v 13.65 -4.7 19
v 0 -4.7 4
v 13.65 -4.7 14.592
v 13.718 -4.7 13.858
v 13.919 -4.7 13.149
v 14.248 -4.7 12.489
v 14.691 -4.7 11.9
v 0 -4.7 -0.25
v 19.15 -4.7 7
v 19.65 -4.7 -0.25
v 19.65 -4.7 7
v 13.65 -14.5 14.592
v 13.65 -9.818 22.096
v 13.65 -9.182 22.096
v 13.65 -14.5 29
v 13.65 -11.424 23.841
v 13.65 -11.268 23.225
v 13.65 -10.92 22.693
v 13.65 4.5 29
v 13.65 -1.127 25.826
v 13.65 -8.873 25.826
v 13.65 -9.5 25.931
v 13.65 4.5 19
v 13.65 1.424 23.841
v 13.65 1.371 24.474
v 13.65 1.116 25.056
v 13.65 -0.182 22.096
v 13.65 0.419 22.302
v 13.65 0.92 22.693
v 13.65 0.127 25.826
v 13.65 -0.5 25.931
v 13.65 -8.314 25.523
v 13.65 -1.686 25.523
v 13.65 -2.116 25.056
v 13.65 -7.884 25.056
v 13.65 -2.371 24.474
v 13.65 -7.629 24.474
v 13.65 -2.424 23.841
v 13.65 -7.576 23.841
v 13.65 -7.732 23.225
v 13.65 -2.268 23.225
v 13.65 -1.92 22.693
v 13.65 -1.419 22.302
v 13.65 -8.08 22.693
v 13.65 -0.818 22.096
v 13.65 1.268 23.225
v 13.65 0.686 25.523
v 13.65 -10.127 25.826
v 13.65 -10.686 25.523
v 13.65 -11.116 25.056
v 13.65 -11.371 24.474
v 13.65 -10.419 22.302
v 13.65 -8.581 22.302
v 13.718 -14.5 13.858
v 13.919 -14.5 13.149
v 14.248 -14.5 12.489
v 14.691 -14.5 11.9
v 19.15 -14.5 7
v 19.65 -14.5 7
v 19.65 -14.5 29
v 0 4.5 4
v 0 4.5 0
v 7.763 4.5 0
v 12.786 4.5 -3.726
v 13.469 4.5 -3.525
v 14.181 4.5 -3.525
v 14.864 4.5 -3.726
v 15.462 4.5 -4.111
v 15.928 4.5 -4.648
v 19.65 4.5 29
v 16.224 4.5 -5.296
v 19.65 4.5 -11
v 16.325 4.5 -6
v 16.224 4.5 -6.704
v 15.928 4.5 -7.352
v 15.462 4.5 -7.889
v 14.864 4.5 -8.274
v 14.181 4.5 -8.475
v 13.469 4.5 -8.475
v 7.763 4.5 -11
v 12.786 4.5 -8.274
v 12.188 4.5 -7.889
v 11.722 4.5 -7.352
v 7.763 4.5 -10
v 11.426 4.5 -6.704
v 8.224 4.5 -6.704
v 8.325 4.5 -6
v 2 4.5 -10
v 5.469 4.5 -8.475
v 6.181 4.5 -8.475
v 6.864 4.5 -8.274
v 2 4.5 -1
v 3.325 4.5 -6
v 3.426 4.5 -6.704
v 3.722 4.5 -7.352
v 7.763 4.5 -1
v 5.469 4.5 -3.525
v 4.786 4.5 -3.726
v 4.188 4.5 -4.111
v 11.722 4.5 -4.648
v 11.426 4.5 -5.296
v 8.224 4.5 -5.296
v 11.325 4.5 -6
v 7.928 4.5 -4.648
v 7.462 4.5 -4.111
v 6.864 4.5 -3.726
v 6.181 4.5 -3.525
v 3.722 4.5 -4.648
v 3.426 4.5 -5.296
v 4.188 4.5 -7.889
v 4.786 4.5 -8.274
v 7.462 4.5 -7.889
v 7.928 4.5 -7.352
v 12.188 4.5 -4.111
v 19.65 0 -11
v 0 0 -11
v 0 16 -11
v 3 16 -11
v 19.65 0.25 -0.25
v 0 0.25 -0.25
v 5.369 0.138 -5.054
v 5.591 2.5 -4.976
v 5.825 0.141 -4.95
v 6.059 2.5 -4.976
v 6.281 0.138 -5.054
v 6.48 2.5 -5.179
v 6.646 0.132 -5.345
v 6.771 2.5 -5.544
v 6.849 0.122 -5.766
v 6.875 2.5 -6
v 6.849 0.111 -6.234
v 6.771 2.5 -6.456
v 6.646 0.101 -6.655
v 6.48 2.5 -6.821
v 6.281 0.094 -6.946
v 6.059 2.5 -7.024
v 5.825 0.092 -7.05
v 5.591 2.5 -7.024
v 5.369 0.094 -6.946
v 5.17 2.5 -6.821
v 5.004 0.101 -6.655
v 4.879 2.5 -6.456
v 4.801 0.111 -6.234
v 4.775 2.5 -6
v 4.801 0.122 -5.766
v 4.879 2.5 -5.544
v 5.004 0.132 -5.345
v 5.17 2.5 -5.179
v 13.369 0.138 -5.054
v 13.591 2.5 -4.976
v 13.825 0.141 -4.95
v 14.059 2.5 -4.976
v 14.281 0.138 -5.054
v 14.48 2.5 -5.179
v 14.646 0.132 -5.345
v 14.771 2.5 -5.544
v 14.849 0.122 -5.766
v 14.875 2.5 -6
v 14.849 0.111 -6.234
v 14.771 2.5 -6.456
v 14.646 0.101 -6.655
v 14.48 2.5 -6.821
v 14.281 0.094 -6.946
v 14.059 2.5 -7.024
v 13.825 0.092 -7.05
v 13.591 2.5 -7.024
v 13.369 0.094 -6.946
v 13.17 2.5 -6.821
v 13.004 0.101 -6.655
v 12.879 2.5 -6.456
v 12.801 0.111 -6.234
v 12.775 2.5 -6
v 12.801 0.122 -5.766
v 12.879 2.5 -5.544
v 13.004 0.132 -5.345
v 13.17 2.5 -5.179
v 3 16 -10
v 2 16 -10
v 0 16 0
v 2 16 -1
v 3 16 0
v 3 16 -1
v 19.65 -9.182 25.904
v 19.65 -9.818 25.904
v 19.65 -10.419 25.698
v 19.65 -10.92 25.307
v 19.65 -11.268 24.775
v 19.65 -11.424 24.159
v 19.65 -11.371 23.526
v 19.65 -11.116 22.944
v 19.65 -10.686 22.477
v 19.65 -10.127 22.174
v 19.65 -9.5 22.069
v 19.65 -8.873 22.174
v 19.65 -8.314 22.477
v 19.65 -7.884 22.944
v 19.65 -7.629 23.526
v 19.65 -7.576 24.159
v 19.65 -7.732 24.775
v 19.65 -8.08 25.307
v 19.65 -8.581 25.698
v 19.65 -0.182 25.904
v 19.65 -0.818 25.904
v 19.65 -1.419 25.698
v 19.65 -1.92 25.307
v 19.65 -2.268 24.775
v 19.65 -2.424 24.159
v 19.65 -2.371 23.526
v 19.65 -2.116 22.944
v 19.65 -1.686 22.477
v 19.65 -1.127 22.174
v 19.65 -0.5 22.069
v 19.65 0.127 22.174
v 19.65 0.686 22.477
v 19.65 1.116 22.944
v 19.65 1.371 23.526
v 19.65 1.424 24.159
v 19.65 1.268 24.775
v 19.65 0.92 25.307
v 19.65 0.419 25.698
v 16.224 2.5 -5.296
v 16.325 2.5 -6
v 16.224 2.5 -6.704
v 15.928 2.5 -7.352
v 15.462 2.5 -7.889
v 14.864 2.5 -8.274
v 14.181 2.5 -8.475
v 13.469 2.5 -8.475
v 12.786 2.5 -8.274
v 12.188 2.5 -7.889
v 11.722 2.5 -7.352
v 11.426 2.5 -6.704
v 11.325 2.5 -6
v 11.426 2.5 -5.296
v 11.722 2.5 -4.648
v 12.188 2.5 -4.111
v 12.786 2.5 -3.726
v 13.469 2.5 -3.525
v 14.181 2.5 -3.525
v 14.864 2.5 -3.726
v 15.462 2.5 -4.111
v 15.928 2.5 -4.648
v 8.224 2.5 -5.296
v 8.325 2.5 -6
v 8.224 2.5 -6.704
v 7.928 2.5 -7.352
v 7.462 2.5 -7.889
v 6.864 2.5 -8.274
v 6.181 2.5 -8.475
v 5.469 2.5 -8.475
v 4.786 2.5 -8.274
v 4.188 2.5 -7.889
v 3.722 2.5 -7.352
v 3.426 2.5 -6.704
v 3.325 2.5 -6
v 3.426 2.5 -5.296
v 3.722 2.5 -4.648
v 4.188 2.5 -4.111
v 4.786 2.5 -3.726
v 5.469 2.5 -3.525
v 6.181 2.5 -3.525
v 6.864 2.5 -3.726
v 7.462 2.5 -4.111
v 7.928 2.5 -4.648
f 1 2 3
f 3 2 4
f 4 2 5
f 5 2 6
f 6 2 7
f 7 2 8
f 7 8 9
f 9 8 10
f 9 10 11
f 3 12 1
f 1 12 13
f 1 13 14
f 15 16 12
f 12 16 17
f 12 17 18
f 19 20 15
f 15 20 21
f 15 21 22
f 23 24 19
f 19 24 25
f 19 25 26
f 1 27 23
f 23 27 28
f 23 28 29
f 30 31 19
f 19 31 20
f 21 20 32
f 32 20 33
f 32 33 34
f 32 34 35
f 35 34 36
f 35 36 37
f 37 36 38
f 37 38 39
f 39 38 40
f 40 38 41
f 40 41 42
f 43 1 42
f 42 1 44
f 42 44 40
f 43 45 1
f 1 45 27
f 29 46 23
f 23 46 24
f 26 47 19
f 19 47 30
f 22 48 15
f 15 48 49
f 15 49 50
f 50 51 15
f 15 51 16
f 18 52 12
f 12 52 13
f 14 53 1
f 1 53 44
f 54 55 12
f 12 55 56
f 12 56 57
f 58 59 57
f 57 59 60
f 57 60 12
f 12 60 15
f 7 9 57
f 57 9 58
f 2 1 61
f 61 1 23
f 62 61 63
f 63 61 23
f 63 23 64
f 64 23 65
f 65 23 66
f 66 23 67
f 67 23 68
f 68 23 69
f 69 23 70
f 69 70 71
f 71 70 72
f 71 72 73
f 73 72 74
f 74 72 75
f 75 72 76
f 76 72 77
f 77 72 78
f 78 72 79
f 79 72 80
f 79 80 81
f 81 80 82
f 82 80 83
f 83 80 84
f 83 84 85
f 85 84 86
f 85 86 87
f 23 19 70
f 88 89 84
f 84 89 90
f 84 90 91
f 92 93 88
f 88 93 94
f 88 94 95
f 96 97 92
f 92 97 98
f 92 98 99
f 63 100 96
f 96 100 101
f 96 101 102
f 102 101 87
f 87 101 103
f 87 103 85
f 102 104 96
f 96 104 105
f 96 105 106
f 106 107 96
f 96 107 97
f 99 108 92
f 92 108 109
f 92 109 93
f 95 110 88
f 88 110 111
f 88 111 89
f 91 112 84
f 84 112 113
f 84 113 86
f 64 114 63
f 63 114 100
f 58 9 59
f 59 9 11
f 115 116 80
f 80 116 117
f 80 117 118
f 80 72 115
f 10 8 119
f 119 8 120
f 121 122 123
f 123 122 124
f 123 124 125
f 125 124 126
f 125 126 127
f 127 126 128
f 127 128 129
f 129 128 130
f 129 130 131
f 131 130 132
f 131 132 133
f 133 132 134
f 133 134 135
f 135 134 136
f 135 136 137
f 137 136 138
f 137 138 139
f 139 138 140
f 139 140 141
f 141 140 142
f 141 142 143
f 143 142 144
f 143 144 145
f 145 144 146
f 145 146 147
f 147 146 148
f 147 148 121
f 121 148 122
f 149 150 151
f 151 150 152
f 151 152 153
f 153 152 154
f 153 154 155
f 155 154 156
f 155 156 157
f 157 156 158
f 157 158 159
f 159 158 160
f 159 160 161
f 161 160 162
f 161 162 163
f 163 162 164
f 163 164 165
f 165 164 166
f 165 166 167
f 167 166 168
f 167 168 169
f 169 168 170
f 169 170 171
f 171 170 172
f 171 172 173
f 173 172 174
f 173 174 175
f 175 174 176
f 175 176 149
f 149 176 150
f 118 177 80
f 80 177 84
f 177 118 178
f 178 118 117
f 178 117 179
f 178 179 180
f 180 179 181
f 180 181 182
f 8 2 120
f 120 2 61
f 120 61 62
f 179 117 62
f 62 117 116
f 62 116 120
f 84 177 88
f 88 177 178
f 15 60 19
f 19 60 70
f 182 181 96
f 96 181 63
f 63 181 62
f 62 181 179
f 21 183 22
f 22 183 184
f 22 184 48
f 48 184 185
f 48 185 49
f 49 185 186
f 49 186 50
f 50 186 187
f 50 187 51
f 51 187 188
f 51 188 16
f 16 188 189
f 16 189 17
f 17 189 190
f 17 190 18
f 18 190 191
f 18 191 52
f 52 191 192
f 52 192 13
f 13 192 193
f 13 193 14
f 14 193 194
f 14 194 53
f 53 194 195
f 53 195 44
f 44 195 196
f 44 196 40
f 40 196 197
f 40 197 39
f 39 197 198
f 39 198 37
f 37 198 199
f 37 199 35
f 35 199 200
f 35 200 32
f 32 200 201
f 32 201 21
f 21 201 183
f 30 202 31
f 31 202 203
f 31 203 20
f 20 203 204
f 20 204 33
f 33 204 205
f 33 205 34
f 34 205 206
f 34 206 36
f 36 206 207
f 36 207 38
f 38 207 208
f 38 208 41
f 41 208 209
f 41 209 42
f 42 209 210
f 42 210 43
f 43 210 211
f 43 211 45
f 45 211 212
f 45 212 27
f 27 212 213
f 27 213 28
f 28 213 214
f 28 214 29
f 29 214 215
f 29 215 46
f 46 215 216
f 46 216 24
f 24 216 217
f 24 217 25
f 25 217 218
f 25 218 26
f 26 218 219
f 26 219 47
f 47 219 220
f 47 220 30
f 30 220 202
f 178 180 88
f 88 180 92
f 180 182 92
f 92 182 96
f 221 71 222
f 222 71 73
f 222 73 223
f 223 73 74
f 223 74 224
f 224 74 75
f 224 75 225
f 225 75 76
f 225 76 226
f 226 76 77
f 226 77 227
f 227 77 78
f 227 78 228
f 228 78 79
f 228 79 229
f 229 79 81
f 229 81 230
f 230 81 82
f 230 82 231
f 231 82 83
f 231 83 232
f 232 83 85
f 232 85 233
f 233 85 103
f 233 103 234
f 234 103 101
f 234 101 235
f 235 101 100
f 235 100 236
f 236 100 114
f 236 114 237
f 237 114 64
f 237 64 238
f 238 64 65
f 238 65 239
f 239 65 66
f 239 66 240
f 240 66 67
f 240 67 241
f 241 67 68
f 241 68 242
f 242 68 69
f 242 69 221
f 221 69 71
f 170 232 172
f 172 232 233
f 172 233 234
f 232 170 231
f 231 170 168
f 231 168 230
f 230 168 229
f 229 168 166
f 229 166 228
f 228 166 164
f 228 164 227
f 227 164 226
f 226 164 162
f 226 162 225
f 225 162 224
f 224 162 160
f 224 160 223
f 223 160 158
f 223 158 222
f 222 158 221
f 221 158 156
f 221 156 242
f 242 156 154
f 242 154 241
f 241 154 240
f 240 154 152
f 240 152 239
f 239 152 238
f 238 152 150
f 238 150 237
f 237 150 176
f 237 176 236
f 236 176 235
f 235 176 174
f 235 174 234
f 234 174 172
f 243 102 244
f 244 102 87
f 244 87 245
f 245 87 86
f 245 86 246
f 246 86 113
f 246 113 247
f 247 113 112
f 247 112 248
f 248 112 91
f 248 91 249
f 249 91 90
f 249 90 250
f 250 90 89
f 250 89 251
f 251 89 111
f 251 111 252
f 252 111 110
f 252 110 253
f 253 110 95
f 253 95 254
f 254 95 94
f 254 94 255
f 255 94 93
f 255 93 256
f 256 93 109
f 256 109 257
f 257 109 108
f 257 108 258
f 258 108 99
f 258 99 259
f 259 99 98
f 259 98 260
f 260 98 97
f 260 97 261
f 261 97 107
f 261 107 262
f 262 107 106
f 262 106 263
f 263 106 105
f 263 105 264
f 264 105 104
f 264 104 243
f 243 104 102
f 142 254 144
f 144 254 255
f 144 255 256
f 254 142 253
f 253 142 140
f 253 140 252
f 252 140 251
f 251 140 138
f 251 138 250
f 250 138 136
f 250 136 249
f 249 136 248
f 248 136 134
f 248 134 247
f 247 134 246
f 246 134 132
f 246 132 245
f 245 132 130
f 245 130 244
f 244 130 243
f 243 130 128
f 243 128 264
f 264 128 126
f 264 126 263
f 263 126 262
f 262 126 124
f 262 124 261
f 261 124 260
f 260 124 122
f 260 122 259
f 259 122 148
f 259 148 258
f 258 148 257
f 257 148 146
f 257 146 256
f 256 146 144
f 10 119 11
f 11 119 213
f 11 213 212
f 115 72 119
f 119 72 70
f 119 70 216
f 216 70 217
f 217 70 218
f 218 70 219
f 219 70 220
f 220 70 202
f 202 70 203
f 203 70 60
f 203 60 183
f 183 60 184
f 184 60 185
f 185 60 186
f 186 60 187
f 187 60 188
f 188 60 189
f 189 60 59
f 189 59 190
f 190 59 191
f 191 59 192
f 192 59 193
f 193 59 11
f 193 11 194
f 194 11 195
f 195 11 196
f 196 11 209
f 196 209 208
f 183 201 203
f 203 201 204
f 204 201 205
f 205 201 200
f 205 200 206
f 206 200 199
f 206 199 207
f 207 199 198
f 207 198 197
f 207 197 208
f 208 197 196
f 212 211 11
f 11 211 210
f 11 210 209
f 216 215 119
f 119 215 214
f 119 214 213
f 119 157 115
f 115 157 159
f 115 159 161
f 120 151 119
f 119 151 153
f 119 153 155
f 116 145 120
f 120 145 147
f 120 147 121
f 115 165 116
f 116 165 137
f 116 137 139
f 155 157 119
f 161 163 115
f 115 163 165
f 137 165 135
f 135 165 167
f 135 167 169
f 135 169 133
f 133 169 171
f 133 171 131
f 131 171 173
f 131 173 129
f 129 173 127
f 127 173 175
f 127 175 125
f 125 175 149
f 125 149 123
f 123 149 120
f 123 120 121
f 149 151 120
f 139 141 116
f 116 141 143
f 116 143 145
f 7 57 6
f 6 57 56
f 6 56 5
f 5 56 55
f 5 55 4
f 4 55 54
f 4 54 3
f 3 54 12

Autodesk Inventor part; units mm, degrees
ref_plane "YZ Plane" through (0, 0, 0) normal (1, 0, 0) x (0, 1, 0)
ref_plane "XZ Plane" through (0, 0, 0) normal (0, 1, 0) x (-1, 0, 0)
ref_plane "XY Plane" through (0, 0, 0) normal (0, 0, 1) x (1, 0, 0)
sketch "Sketch1" plane through (0, 0, 0) normal (0, 1, 0) x (-1, 0, 0)
  line L0 (0, 0) -> (-19.65, 0)
  line L1 (-19.65, 0) -> (-19.65, -12)
  line L2 (-19.65, -12) -> (0, -12)
  line L3 (0, -12) -> (0, 0)
  line L4 (0, 0) -> (0, -6)
  line L5 (0, -6) -> (-5.825, -6)
  line L6 (-5.825, -6) -> (-13.825, -6)
  circle A0 centre (-5.825, -6) radius 1.05
  circle A1 centre (-13.825, -6) radius 1.05
  dimension "d0" = 19.65
  dimension "d1" = 12
  dimension "d2" = 6
  dimension "d3" = 5.825
  dimension "d4" = 8
  dimension "d5" = 2.1
  dimension "d6" = 2.1
extrude "Extrusion1" add sketch "Sketch1" along normal blind 4.5
sketch "Sketch2" plane through (0, 4.5, 0) normal (0, 1, 0) x (1, 0, 0)
  line L0 (0, 0) -> (19.65, 0) projected
  line L1 (0, 0) -> (0, 6)
  line L2 (0, 12) -> (0, 0) projected
  line L3 (0, 6) -> (5.825, 6)
  line L4 (5.825, 6) -> (13.825, 6)
  circle A0 centre (5.825, 6) radius 2.5
  circle A1 centre (13.825, 6) radius 2.5
  dimension "d9" = 5.825
  dimension "d10" = 8
  dimension "d11" = 5
  dimension "d12" = 5
extrude "Extrusion2" cut sketch "Sketch2" against normal blind 2
sketch "Sketch3" plane through (0, 4.5, 0) normal (0, 1, 0) x (1, 0, 0)
  line L0 (19.65, 12) -> (0, 12) projected
  line L1 (0, 0) -> (3, 0)
  line L2 (3, 0) -> (3, 12)
  line L3 (3, 12) -> (0, 12)
  line L4 (0, 12) -> (0, 0)
  dimension "d15" = 3
extrude "Extrusion3" add sketch "Sketch3" along normal blind 11.5
sketch "Sketch4" plane through (0, 16, 0) normal (0, 1, 0) x (1, 0, 0)
  line L0 (0, 0) -> (3, 0) projected
  line L1 (0, 0) -> (3, 0)
  line L2 (3, 0) -> (3, 1)
  line L3 (3, 0) -> (3, 12) projected
  line L4 (3, 1) -> (2, 1)
  line L5 (2, 1) -> (2, 11)
  line L6 (2, 11) -> (3, 11)
  line L7 (3, 1) -> (3, 11)
  dimension "d18" = 1
  dimension "d19" = 1
  dimension "d20" = 10
extrude "Extrusion4" cut sketch "Sketch4" against normal blind 11.5
sketch "Sketch6" plane through (0, 0, 0) normal (0, 0, 1) x (1, 0, 0)
  line L0 (0, 0) -> (19.65, 0) projected
  line L1 (0, 0) -> (5, 0)
  line L2 (5, 0) -> (5, 4.5)
  line L3 (3.325, 4.5) -> (8.325, 4.5) projected
  line L4 (19.65, 0) -> (19.65, 4.5) projected
  line L5 (19.65, 4.5) -> (19.65, 0)
  line L6 (19.65, 0) -> (5, 0)
  line L7 (5, 4.5) -> (19.65, 4.5)
  line L8 (19.65, 0) -> (5, 0)
  line L9 (19.65, 4.5) -> (19.65, -3.5)
  line L10 (5, 4.5) -> (-3, 4.5)
  line L11 (3, 4.5) -> (19.65, 4.5) projected
  line L12 (5, 4.5) -> (5, -3.5)
  line L13 (5, -3.5) -> (19.65, -3.5)
  dimension "d24" = 5
  dimension "d25" = 8
  dimension "d26" = 8
  dimension "d27" = 8
extrude "Extrusion5" add sketch "Sketch6" along normal blind 2
sketch "Sketch7" plane through (0, 0, 2) normal (0, 0, 1) x (1, 0, 0)
  line L0 (5, 0) -> (5, -3.5) projected
  line L1 (5, -3.5) -> (11, -3.5)
  line L2 (11, -3.5) -> (11, 4.5)
  line L3 (11, 4.5) -> (5, 4.5)
  line L4 (5, 4.5) -> (5, -3.5)
  line L5 (5, -3.5) -> (19.65, -3.5) projected
  line L6 (5, -3.5) -> (11, -3.5)
  line L7 (11, -3.5) -> (11, -14.5)
  line L8 (11, -14.5) -> (5, -14.5)
  line L9 (5, -14.5) -> (5, -3.5)
  point P0 (0, 0)
  dimension "d30" = 6
  dimension "d31" = 8
  dimension "d32" = 6
  dimension "d33" = 11
extrude "Extrusion6" add sketch "Sketch7" along normal blind 27
sketch "Sketch8" plane through (11, -14.5, 2) normal (1, 0, 0) x (0, 0, -1)
  line L0 (0, 11) -> (0, 0) projected
  line L1 (0, 0) -> (-27, 0)
  line L2 (0, 0) -> (-27, 0) projected
  line L3 (-27, 0) -> (-27, 5)
  line L4 (2, 19) -> (-27, 19) projected
  circle A0 centre (-27, 5) radius 2
  line L5 (0, 19) -> (-27, 19)
  line L6 (-27, 19) -> (-27, 14)
  circle A1 centre (-27, 14) radius 2
  line L7 (-27, 14) -> (-22, 14)
  line L8 (-27, 5) -> (-22, 5)
  circle A2 centre (-22, 14) radius 1.9305
  circle A3 centre (-22, 5) radius 1.9305
  point P0 (2, 14.5)
  point P1 (-25, 14)
  point P2 (-27, 16)
  point P3 (-25, 5)
  point P4 (-27, 3)
  dimension "d36" = 27
  dimension "d37" = 5
  dimension "d39" = 4
  dimension "d41" = 27
  dimension "d42" = 5
  dimension "d43" = 4
  dimension "d44" = 5
  dimension "d45" = 5
  dimension "d46" = 3.861
  dimension "d47" = 3.861
sketch "Sketch10" plane through (11, -14.5, 2) normal (1, 0, 0) x (0, 0, -1)
  line L0 (0, 0) -> (-27, 0) projected
  line L1 (0, 0) -> (-5, 0)
  line L2 (-5, 0) -> (-5, 11)
  line L3 (-5, 11) -> (0, 11)
  line L4 (0, 11) -> (0, 0)
  point P0 (2, 14.5)
  point P1 (-5, 0)
  dimension "d52" = 5
  dimension "d53" = 11
extrude "Extrusion9" cut sketch "Sketch10" against normal blind 20
sketch "Sketch11" plane through (11, -3.5, 2) normal (1, 0, 0) x (0, 0, -1)
  line L0 (-27, 8) -> (0, 8)
  line L1 (0, 8) -> (0, -11)
  line L2 (0, -11) -> (-27, -11)
  line L3 (-27, -11) -> (-27, 8)
  line L4 (-5, 0) -> (0, 0) projected
  line L5 (-5, 0) -> (0, 0)
  line L6 (0, 0) -> (0, -11)
  line L7 (0, -11) -> (-5, -11)
  line L8 (-5, -11) -> (-5, 0)
  point P0 (2, 3.5)
  dimension "d56" = 27
  dimension "d57" = 19
extrude "Extrusion10" add sketch "Sketch11" along normal blind 16 contours L0 L1 L4 L8 L2 L3
sketch "Sketch13" plane through (5, -3.5, 0) normal (-1, 0, 0) x (0, 0, 1)
  line L0 (0, 3.5) -> (0, 8) projected
  line L1 (0, 8) -> (30.196, 8)
  line L2 (30.196, 8) -> (30.196, -11.8084)
  line L3 (30.196, -11.8084) -> (0, -11.8084)
  line L4 (0, -11.8084) -> (0, 8)
extrude "Extrusion12" cut sketch "Sketch13" against normal blind 12.5
extrude "Extrusion13" cut sketch "Sketch8" along normal blind 30 contours A2 | A3
sketch "Sketch14" plane through (0, 0, -12) normal (-1, 0, 0) x (0, 0, 1)
  line L0 (12, 4.5) -> (12, 16) projected
  line L1 (12, 4.5) -> (16, 4.5)
  line L2 (14, 4.5) -> (41, 4.5) projected
  line L3 (12, 4.5) -> (12, 0) projected
  line L4 (16, 4.5) -> (12, 4.5)
  line L5 (12, 4.5) -> (12, 0)
  line L6 (12, 0) -> (16, 0)
  line L7 (16, 0) -> (16, 4.5)
  line L8 (16, 0) -> (12, 0)
  line L9 (12, 0) -> (12, -3.5)
  line L10 (12, -3.5) -> (16, -3.5)
  line L11 (16, -3.5) -> (16, 0)
  dimension "d68" = 4
  dimension "d69" = 3.5
extrude "Extrusion14" add sketch "Sketch14" against normal blind 27
sketch "Sketch15" plane through (27, -3.5, 2) normal (1, 0, 0) x (0, 0, -1)
  line L0 (-27.7224, 9.1153) -> (2, 9.1153)
  line L1 (2, 9.1153) -> (2, -11.9629)
  line L2 (2, -11.9629) -> (-27.7224, -11.9629)
  line L3 (-27.7224, -11.9629) -> (-27.7224, 9.1153)
  point P0 (2, 3.5)
extrude "Extrusion15" cut sketch "Sketch15" against normal blind 3.5
sketch "Sketch16" plane through (0, 0, 0) normal (0, 0, -1) x (-1, 0, 0)
  line L0 (-23.5, 4.5) -> (-23.5, -3.5) projected
  line L1 (-19.65, 0) -> (0, 0) projected
  line L2 (-23.5, 4.5) -> (-19.65, 4.5)
  line L3 (-19.65, 4.5) -> (-19.65, 0)
  line L4 (-19.65, 0) -> (-23.5, 0)
  line L5 (-23.5, 0) -> (-23.5, 4.5)
  line L6 (0, -3.5) -> (-23.5, -3.5) projected
  line L7 (-23.5, -3.5) -> (0, -3.5)
  line L8 (0, -3.5) -> (0, 0)
  line L9 (0, 0) -> (-23.5, 0)
  line L10 (-23.5, 0) -> (-23.5, -3.5)
extrude "Extrusion16" cut sketch "Sketch16" against normal blind 0.25
chamfer "Chamfer2" distance 11.5 angle 22.5 1 edges at (3, 4.5, -0.5) measured on face at (3, 8.3333, -0.6667)
chamfer "Chamfer3" distance 11.5 angle 22.5 1 edges at (3, 4.5, -11.5) measured on face at (3, 8.3333, -11.3333)
sketch "Sketch17" plane through (17.5, -3.5, 0) normal (-1, 0, 0) x (0, 0, 1)
  line L0 (4, 8) -> (0, 8) projected
  line L1 (4, 8) -> (29, 8) projected
  line L2 (4, 8) -> (29, 8)
  line L3 (29, -11) -> (7, -11) projected
  line L4 (29, 8) -> (29, -11)
  line L5 (29, -11) -> (7, -11)
  line L6 (7, -11) -> (7, 0) projected
  line L7 (7, -11) -> (7, 0)
  line L8 (7, 0) -> (4, 0) projected
  line L9 (7, 0) -> (4, 0)
  line L10 (4, 0) -> (4, 8) projected
  line L11 (4, 0) -> (4, 8)
  circle A0 centre (24, 3) radius 1.9305 projected
  circle A1 centre (24, 3) radius 1.9305
  circle A2 centre (24, -6) radius 1.9305 projected
  circle A3 centre (24, -6) radius 1.9305
  point P0 (0, 3.5)
extrude "Extrusion17" add sketch "Sketch17" along normal blind 7.75
sketch "Sketch19" plane through (19.65, 0, -12) normal (1, 0, 0) x (0, 0, -1)
  line L0 (3.0047, 17.6779) -> (-43.6886, 17.6779)
  line L1 (-43.6886, 17.6779) -> (-43.6886, -24.1526)
  line L2 (-43.6886, -24.1526) -> (3.0047, -24.1526)
  line L3 (3.0047, -24.1526) -> (3.0047, 17.6779)
  point P0 (-12, 0)
extrude "Extrusion18" cut sketch "Sketch19" along normal blind 7.75
sketch "Sketch20" plane through (19.65, 0, -12) normal (1, 0, 0) x (0, 0, -1)
  line L0 (-16, -3.5) -> (-19, -3.5) projected
  line L1 (-41, 4.5) -> (-16, 4.5) projected
  line L2 (-16, -3.5) -> (-41, -3.5)
  line L3 (-41, -3.5) -> (-41, 4.5)
  line L4 (-41, 4.5) -> (-16, 4.5)
  line L5 (-16, 4.5) -> (-16, -3.5)
  line L6 (-19, -3.5) -> (-19, -14.5) projected
  line L7 (0, 4.5) -> (-41, 4.5) projected
  line L8 (-19, -14.5) -> (-41, -14.5)
  line L9 (-41, -14.5) -> (-41, 4.5)
  line L10 (-41, 4.5) -> (-19, 4.5)
  line L11 (-19, 4.5) -> (-19, -14.5)
  point P0 (-12, 0)
extrude "Extrusion19" cut sketch "Sketch20" against normal blind 3.4
sketch "Sketch22" plane through (9.75, -3.5, 0) normal (-1, 0, 0) x (0, 0, 1)
  line L0 (29, 8) -> (4, 8) projected
  line L1 (29, -11) -> (29, 8) projected
  line L2 (4, 8) -> (29, 8)
  line L3 (29, 8) -> (29, -11)
  line L4 (29, -11) -> (4, -11)
  line L5 (4, -11) -> (4, 8)
  point P0 (0, 3.5)
extrude "Extrusion21" cut sketch "Sketch22" against normal blind 0.5
chamfer "Chamfer6" distance 6 angle 45 1 edges at (10.25, 0.5, 4)
sketch "Sketch23" plane through (10.25, -3.5, 0) normal (-1, 0, 0) x (0, 0, 1)
  line L0 (0.25, 0) -> (4, 0) projected
  line L1 (29, -11) -> (0.25, -11)
  line L2 (0.25, -11) -> (0.25, 0)
  line L3 (0.25, 0) -> (29, 0)
  line L4 (29, 0) -> (29, -11)
  point P0 (0, 3.5)
extrude "Extrusion22" cut sketch "Sketch23" along normal blind 6
chamfer "Chamfer7" distance 3 angle 45 1 edges at (10.25, -9, 7)
sketch "Sketch24" plane through (2, 4.5, -11) normal (0, 0, 1) x (1, 0, 0)
  line L0 (0, 11.5) -> (0, 0) projected
  line L1 (0, 11.5) -> (1, 11.5) projected
  line L2 (0, 11.5) -> (1, 11.5)
  line L3 (1, 11.5) -> (5.7635, 0) projected
  line L4 (1, 11.5) -> (5.7635, 0)
  line L5 (5.7635, 0) -> (0, 0)
  line L6 (0, 0) -> (0, 11.5)
  point P0 (-2, -4.5)
extrude "Extrusion23" add sketch "Sketch24" along normal blind 1
sketch "Sketch25" plane through (19.65, 0, -12) normal (0, 0, -1) x (-1, 0, 0)
  line L0 (11.8865, 4.5) -> (16.65, 16) projected
  line L1 (11.8865, 4.5) -> (21.5602, 4.5)
  line L2 (21.5602, 4.5) -> (21.5602, 16.6717)
  line L3 (21.5602, 16.6717) -> (11.8865, 16.6717)
  line L4 (11.8865, 16.6717) -> (11.8865, 4.5)
  point P0 (19.65, 0)
extrude "Extrusion24" cut sketch "Sketch25" against normal blind 1
sketch "Sketch26" plane through (19.65, 0, -12) normal (0, 0, -1) x (-1, 0, 0)
  line L0 (23.0227, -5.5896) -> (-3.5888, -5.5896)
  line L1 (-3.5888, -5.5896) -> (-3.5888, 1.5983)
  line L2 (23.0227, 1.5983) -> (23.0227, -5.5896)
  line L3 (23.0227, -5.5896) -> (-3.178, -5.5896)
  line L4 (-3.178, -5.5896) -> (-3.178, 11.4907)
  line L5 (-3.178, 11.4907) -> (23.0227, 11.4907)
  line L6 (23.0227, 11.4907) -> (23.0227, -5.5896)
  point P0 (19.65, 0)
extrude "Extrusion25" cut sketch "Sketch26" against normal blind 1
sketch "Sketch27" plane through (0, 0, 0.25) normal (0, 0, -1) x (-1, 0, 0)
  line L0 (-19.65, 0) -> (0, 0) projected
  line L1 (-19.65, -3.5) -> (-16.25, -3.5) projected
  line L2 (0, 0) -> (-19.65, 0)
  line L3 (-19.65, 0) -> (-19.65, -3.5)
  line L4 (-19.65, -3.5) -> (0, -3.5)
  line L5 (0, -3.5) -> (0, 0)
extrude "Extrusion26" add sketch "Sketch27" along normal blind 0.25
sketch "Sketch28" plane through (0, 0, 0) normal (0, 0, -1) x (-1, 0, 0)
  line L0 (0, 0) -> (-19.65, 0) projected
  line L1 (-19.65, 0) -> (-19.65, -3.5) projected
  line L2 (0, 0) -> (-19.65, 0)
  line L3 (-19.65, 0) -> (-19.65, -3.5)
  line L4 (-19.65, -3.5) -> (0, -3.5)
  line L5 (0, -3.5) -> (0, 0)
extrude "Extrusion27" add sketch "Sketch28" along normal blind 0.25
sketch "Sketch29" plane through (16.25, 0, -12) normal (1, 0, 0) x (0, 0, -1)
  line L0 (-16, -3.5) -> (-16, 4.5) projected
  line L1 (-19, -14.5) -> (-41, -14.5) projected
  line L2 (-16, 4.5) -> (-41, 4.5)
  line L3 (-41, 4.5) -> (-41, -14.5)
  line L4 (-41, -14.5) -> (-16, -14.5)
  line L5 (-16, -14.5) -> (-16, 4.5)
  line L6 (-19, -3.5) -> (-19, -14.5) projected
  line L7 (-19, -3.5) -> (-16, -3.5)
  line L8 (-16, -3.5) -> (-16, -14.5)
  line L9 (-16, -14.5) -> (-19, -14.5)
  line L10 (-19, -14.5) -> (-19, -3.5)
  circle A0 centre (-36, -0.5) radius 1.9305 projected
  circle A1 centre (-36, -0.5) radius 1.9305
  circle A2 centre (-36, -9.5) radius 1.9305 projected
  circle A3 centre (-36, -9.5) radius 1.9305
  point P0 (-12, 0)
extrude "Extrusion28" add sketch "Sketch29" along normal blind 3.4 contours L7 L6 L1 L3 L2 L0
sketch "Sketch30" plane through (0, -3.5, 4) normal (0, -1, 0) x (1, 0, 0)
  line L0 (19.65, 3) -> (19.65, -4.25) projected
  line L1 (0, -15) -> (0, -4.25) projected
  line L2 (0, 3) -> (0, -4.25)
  line L3 (0, -4.25) -> (19.65, -4.25)
  line L4 (19.65, -4.25) -> (19.65, 3)
  line L5 (10.25, 6) -> (13.25, 3) projected
  line L6 (13.25, 3) -> (10.25, 6)
  line L7 (10.25, 6) -> (7.25, 3)
  line L8 (10.25, 6) -> (4.25, 0) projected
  line L9 (0, 0) -> (4.25, 0) projected
  line L10 (7.25, 3) -> (4.25, 0)
  line L11 (19.65, 3) -> (13.25, 3)
  line L12 (7.25, 3) -> (0, 3)
  point P0 (0, -4)
extrude "Extrusion29" add sketch "Sketch30" along normal blind 1.2 contours L0 L3 L2 L9 L8 L7 L5 L11
sketch "Sketch31" plane through (10.25, -3.5, 0) normal (-1, 0, 0) x (0, 0, 1)
  line L0 (29, 8) -> (29, -11) projected
  line L1 (29, -11) -> (10, -11) projected
  line L2 (29, 8) -> (19, 8)
  line L3 (19, 8) -> (19, -11)
  line L4 (19, -11) -> (29, -11)
  line L5 (29, -11) -> (29, 8)
  point P0 (0, 3.5)
  dimension "d126" = 10
extrude "Extrusion30" cut sketch "Sketch31" against normal blind 3.4
sketch "Sketch32" plane through (0, 4.5, 0) normal (0, 1, 0) x (1, 0, 0)
  line L0 (13.65, -19) -> (10.25, -19) projected
  line L1 (10.25, -19) -> (10.25, -10) projected
  line L2 (13.65, -19) -> (10.25, -10)
  line L3 (10.25, -10) -> (7.9334, -20.7068)
  line L4 (7.9334, -20.7068) -> (13.65, -19)
  point P0 (0, 0)
extrude "Extrusion31" cut sketch "Sketch32" against normal blind 20 contours L0 L1 L2
sketch "Sketch38" plane through (0, -4.7, 4) normal (0, -1, 0) x (1, 0, 0)
  line L0 (13.65, 15) -> (13.65, 3)
  line L1 (13.25, 3) -> (19.65, 3) projected
  line L2 (13.65, 3) -> (6.6933, 3)
  line L3 (10.25, 6) -> (13.65, 15) projected
  line L4 (6.6933, 3) -> (13.65, 15)
  point P0 (0, -4)
extrude "Extrusion35" cut sketch "Sketch38" along normal blind 20
sketch "Sketch39" plane through (0, -4.7, 4) normal (0, -1, 0) x (1, 0, 0)
  line L0 (10.25, 6) -> (13.65, 15) projected
  line L1 (10.25, 6) -> (10.9568, 7.8709)
  line L2 (10.9568, 7.8709) -> (13.65, 7.8709)
  line L3 (13.65, 3) -> (13.65, 15) projected
  line L4 (13.65, 3) -> (10.9568, 3)
  line L5 (10.9568, 3) -> (10.9568, 7.8709)
  line L6 (10.9568, 7.8709) -> (13.65, 7.8709)
  line L7 (13.65, 7.8709) -> (13.65, 3)
  point P0 (0, -4)
  dimension "d150" = 2
extrude "Extrusion36" add sketch "Sketch39" along normal blind 9.8 contours L2 L3 L4 L5
sketch "Sketch40" plane through (0, -4.7, 4) normal (0, -1, 0) x (1, 0, 0)
  line L0 (10.25, 6) -> (10.9568, 7.8709) projected
  line L1 (13.65, 25) -> (13.65, 7.8709) projected
  line L2 (10.9568, 7.8709) -> (13.65, 7.8709)
  line L3 (13.65, 15) -> (13.65, 25) projected
  line L4 (13.65, 7.8709) -> (13.65, 15)
  line L5 (10.9568, 7.8709) -> (13.65, 15) projected
  line L6 (13.65, 15) -> (10.9568, 7.8709)
  point P0 (0, -4)
extrude "Extrusion37" add sketch "Sketch40" along normal blind 9.8
sketch "Sketch42" plane through (0, -4.7, 4) normal (0, -1, 0) x (1, 0, 0)
  line L0 (4.25, 0) -> (0, 0) projected
  line L1 (10.25, 6) -> (13.65, 15) projected
  line L2 (0, 0) -> (13.65, 15)
  line L3 (13.65, 15) -> (13.65, 4.5)
  line L4 (13.65, 4.5) -> (6.0124, 0)
  line L5 (0, 0) -> (4.25, 0) projected
  line L6 (6.0124, 0) -> (0, 0)
  point P0 (0, -4)
extrude "Extrusion38" add sketch "Sketch42" against normal blind 9.2
sketch "Sketch45" plane through (19.65, -14.5, 7) normal (0, -1, 0) x (1, 0, 0)
  line L0 (-6, 12) -> (-19.65, -3) projected
  line L1 (-6, 12) -> (-11.8966, 12)
  line L2 (-11.8966, 12) -> (-11.8966, -1.0489)
  line L3 (-11.8966, -1.0489) -> (-6, -1.0489)
  line L4 (-6, -1.0489) -> (-6, 12)
  point P0 (-19.65, -7)
  point P1 (-11.8966, 5.5202)
extrude "Extrusion40" cut sketch "Sketch45" against normal blind 9.8 contours L4 L3 L2 L0
chamfer "Chamfer12" distance 5.5 angle 47.7 1 edges at (13.65, -9.6, 7) measured on face at (17.65, -11.2333, 7)
fillet "Fillet6" radius 4 1 edges at (13.65, -9.6, 13.0444)
sketch "Sketch46" plane through (0, 4.5, 0) normal (-1, 0, 0) x (0, 0, 1)
  line L0 (-11, -4.5) -> (-0.25, -4.5) projected
  line L1 (-0.25, -4.5) -> (-0.25, -4.25)
  line L2 (-0.25, -4.25) -> (-11, -4.5)
  line L3 (-11, -4.5) -> (-0.25, -4.5)
  line L4 (-0.25, -4.25) -> (-0.25, -4.5)
  point P0 (0, -4.5)
  dimension "d171" = 0.25
extrude "Extrusion41" cut sketch "Sketch46" against normal blind 50
properties part number "Finger_mount2"
